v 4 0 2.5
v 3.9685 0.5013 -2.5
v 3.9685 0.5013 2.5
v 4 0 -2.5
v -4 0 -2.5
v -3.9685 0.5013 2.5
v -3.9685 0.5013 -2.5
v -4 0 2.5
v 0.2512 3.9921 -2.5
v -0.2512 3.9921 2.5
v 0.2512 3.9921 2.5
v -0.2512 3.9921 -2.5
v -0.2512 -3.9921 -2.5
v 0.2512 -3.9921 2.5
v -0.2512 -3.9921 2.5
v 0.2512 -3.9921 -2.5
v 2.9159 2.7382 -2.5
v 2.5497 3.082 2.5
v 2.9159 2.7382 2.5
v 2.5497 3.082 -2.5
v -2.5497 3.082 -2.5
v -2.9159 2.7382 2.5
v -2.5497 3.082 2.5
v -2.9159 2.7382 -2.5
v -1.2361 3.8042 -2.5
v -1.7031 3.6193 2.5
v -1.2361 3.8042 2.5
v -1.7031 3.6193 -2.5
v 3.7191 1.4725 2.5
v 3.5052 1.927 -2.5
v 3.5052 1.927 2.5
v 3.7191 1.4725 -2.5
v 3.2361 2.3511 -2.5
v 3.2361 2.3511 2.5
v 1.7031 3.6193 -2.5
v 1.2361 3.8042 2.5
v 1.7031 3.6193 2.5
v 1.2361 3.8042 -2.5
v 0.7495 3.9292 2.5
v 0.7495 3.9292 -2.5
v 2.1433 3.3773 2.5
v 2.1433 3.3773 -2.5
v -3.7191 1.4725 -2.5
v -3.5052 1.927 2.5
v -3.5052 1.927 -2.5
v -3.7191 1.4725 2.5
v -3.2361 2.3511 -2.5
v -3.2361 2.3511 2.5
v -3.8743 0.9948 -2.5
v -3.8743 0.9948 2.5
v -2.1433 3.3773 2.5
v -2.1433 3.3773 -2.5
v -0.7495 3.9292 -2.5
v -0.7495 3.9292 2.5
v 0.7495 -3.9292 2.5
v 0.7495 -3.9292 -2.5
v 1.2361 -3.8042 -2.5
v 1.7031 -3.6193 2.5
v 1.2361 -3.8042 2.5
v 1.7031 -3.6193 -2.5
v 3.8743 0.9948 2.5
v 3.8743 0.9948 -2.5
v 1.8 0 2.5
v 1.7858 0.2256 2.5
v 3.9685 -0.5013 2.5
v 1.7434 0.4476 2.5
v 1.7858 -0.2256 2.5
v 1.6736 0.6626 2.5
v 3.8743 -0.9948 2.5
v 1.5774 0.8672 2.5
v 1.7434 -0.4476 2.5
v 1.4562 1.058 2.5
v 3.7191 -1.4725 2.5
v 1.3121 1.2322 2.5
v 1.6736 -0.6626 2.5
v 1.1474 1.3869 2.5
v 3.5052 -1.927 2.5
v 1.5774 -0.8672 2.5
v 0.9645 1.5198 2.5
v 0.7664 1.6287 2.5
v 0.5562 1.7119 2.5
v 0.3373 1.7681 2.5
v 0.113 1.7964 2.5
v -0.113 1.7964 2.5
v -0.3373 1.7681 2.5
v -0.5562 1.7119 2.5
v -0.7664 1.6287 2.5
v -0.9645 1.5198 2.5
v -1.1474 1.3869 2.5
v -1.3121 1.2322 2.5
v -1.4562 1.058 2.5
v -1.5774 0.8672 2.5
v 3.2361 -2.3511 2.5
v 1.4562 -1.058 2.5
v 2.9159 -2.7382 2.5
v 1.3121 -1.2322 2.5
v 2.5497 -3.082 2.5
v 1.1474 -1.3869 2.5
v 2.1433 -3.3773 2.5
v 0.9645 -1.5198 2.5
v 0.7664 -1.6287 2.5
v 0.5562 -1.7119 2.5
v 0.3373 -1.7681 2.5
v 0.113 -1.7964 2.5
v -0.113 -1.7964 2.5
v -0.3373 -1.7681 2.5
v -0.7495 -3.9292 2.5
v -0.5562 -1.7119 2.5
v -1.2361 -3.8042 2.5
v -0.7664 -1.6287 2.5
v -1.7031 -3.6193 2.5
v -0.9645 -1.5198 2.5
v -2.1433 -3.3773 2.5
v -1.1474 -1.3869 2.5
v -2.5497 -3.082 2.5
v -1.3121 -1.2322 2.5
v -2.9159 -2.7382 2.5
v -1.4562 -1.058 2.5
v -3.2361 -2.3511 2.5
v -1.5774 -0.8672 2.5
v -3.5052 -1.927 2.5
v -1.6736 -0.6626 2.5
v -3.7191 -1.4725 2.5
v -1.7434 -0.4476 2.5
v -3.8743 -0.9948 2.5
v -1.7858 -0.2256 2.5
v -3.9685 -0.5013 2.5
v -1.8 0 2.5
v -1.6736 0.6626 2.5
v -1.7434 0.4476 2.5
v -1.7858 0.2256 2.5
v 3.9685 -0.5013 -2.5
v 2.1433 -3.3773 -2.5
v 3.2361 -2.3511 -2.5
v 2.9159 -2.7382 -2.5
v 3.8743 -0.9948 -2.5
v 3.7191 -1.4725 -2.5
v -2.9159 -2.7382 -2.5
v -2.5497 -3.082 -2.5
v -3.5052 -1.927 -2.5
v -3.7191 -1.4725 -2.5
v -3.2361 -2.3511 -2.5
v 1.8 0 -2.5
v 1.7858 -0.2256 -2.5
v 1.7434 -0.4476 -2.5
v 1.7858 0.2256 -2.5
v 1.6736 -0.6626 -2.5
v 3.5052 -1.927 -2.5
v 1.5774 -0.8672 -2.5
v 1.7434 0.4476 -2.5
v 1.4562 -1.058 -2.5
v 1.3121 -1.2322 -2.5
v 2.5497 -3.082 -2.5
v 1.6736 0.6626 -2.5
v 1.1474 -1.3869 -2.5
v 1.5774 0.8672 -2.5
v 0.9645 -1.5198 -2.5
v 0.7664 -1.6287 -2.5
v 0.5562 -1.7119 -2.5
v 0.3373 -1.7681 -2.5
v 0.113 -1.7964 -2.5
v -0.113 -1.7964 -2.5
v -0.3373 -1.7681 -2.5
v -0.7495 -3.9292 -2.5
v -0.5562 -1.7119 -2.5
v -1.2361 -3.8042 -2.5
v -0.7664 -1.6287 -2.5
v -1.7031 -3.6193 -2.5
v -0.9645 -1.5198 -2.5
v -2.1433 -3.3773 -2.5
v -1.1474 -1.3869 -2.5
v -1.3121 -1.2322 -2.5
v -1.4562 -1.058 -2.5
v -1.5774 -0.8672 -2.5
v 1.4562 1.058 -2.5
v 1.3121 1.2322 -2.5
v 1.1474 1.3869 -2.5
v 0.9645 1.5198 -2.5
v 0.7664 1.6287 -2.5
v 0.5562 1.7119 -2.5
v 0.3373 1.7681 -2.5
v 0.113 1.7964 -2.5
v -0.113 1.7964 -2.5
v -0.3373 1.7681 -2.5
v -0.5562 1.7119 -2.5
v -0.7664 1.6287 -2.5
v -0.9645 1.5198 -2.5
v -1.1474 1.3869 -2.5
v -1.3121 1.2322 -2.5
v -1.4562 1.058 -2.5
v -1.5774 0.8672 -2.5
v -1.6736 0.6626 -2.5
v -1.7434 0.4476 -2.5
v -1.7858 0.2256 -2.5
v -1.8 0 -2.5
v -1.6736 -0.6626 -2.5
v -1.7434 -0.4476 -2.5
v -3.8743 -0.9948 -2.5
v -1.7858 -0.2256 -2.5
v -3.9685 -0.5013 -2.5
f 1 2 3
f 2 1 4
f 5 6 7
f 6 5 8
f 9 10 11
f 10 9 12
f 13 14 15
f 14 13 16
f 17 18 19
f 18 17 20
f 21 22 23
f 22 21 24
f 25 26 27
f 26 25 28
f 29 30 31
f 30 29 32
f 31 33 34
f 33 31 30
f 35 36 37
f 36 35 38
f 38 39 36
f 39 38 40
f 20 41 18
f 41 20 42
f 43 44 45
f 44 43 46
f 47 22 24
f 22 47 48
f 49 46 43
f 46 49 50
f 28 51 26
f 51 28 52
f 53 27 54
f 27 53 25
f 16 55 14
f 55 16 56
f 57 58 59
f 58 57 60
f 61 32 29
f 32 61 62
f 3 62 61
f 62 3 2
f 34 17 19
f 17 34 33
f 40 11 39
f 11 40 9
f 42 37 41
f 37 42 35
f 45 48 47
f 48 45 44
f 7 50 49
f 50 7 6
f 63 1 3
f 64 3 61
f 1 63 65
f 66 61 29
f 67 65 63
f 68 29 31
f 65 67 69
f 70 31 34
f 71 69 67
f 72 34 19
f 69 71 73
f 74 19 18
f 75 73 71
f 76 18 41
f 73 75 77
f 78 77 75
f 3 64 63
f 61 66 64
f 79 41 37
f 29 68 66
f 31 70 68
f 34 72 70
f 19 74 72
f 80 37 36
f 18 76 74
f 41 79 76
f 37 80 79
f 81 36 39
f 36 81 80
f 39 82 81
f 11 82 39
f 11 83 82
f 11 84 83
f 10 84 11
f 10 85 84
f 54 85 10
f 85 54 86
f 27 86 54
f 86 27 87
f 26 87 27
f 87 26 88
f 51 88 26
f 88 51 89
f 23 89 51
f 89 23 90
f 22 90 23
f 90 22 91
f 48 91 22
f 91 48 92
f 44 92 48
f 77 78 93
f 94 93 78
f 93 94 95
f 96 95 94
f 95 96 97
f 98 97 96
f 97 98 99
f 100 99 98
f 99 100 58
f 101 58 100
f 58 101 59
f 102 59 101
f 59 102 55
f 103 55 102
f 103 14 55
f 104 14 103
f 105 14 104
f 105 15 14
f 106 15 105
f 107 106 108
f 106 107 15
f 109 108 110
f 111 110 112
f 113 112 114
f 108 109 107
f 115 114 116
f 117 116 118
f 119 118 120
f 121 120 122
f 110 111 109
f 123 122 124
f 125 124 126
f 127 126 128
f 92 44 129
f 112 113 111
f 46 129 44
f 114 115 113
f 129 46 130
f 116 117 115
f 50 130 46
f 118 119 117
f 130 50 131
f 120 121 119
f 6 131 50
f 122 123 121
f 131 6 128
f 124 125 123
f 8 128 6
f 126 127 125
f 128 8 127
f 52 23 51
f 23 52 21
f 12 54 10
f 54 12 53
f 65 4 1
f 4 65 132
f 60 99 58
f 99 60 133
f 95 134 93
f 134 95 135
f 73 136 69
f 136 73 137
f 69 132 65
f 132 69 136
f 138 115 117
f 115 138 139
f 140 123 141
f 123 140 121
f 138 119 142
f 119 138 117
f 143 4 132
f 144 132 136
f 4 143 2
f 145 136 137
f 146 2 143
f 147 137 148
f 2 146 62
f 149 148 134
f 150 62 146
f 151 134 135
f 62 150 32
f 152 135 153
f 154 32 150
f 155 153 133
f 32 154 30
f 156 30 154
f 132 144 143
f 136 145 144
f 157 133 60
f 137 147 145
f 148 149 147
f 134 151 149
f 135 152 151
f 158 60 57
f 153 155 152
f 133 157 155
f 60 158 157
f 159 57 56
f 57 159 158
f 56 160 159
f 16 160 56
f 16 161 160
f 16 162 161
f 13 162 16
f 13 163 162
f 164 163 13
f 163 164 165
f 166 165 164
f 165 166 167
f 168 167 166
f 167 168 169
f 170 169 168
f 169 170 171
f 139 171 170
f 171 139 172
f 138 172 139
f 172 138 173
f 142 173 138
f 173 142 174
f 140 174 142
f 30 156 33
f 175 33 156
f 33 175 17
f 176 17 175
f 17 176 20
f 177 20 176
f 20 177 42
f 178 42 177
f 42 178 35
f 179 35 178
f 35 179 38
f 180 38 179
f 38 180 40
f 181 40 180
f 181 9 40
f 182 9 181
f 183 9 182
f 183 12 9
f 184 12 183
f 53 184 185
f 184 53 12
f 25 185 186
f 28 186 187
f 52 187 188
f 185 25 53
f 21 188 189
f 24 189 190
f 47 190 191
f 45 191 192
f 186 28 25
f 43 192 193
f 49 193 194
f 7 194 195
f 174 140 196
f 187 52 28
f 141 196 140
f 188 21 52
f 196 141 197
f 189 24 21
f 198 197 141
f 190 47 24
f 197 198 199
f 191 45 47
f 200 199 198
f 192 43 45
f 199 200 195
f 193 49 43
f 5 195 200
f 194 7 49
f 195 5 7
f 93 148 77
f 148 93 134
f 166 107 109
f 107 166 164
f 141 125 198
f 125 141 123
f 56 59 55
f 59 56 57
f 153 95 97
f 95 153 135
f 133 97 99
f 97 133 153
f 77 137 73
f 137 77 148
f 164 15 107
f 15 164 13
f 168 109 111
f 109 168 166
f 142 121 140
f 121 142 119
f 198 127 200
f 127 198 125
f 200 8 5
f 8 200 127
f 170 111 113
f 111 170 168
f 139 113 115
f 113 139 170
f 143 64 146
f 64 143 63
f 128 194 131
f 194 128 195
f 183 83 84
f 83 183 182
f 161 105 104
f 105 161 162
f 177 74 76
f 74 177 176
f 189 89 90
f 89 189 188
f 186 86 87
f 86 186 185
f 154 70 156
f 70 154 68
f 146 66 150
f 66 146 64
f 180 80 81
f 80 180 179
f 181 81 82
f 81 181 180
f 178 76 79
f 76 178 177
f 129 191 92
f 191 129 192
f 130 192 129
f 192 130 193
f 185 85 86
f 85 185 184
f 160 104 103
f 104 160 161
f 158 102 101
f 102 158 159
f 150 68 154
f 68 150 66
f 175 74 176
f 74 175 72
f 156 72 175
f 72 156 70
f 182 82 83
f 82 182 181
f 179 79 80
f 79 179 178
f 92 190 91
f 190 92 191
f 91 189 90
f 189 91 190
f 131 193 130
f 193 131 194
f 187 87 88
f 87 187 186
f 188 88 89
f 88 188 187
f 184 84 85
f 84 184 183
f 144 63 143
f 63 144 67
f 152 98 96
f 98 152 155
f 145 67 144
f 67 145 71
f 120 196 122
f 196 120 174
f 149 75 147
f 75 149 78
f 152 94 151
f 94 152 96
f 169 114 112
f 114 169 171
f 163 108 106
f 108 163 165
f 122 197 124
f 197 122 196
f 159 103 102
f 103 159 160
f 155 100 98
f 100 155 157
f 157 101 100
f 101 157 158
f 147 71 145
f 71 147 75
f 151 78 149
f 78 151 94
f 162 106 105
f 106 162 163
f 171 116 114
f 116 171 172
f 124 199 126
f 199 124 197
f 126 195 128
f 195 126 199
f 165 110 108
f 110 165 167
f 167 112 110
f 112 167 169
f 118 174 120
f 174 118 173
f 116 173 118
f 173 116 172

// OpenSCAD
$fn = 50;


difference() {
	union() {
		translate(v = [0, 0, -2.5000000000]) {
			cylinder(h = 5, r = 4.0000000000);
		}
	}
	union() {
		#translate(v = [0, 0, -100.0000000000]) {
			cylinder(h = 200, r = 1.8000000000);
		}
	}
}
